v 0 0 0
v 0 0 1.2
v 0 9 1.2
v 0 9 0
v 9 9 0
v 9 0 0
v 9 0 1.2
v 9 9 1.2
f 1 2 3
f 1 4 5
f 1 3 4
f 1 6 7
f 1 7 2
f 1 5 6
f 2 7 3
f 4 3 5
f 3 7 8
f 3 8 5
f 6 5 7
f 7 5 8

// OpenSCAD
/* Warning, this is a very basic generator with a lot of approximation 
input data : [TFBGA, 9UW, 9x9x1.2mm, 100, , A, C04-00691A]
generated by com.zoubworld.electronics.cad.model3d.Basic
Date : Sun Feb 15 10:50:49 CET 2026
*/

//body
color("black")
translate([0,0,0])
cube([9.0,9.0,1.2], center=false);
